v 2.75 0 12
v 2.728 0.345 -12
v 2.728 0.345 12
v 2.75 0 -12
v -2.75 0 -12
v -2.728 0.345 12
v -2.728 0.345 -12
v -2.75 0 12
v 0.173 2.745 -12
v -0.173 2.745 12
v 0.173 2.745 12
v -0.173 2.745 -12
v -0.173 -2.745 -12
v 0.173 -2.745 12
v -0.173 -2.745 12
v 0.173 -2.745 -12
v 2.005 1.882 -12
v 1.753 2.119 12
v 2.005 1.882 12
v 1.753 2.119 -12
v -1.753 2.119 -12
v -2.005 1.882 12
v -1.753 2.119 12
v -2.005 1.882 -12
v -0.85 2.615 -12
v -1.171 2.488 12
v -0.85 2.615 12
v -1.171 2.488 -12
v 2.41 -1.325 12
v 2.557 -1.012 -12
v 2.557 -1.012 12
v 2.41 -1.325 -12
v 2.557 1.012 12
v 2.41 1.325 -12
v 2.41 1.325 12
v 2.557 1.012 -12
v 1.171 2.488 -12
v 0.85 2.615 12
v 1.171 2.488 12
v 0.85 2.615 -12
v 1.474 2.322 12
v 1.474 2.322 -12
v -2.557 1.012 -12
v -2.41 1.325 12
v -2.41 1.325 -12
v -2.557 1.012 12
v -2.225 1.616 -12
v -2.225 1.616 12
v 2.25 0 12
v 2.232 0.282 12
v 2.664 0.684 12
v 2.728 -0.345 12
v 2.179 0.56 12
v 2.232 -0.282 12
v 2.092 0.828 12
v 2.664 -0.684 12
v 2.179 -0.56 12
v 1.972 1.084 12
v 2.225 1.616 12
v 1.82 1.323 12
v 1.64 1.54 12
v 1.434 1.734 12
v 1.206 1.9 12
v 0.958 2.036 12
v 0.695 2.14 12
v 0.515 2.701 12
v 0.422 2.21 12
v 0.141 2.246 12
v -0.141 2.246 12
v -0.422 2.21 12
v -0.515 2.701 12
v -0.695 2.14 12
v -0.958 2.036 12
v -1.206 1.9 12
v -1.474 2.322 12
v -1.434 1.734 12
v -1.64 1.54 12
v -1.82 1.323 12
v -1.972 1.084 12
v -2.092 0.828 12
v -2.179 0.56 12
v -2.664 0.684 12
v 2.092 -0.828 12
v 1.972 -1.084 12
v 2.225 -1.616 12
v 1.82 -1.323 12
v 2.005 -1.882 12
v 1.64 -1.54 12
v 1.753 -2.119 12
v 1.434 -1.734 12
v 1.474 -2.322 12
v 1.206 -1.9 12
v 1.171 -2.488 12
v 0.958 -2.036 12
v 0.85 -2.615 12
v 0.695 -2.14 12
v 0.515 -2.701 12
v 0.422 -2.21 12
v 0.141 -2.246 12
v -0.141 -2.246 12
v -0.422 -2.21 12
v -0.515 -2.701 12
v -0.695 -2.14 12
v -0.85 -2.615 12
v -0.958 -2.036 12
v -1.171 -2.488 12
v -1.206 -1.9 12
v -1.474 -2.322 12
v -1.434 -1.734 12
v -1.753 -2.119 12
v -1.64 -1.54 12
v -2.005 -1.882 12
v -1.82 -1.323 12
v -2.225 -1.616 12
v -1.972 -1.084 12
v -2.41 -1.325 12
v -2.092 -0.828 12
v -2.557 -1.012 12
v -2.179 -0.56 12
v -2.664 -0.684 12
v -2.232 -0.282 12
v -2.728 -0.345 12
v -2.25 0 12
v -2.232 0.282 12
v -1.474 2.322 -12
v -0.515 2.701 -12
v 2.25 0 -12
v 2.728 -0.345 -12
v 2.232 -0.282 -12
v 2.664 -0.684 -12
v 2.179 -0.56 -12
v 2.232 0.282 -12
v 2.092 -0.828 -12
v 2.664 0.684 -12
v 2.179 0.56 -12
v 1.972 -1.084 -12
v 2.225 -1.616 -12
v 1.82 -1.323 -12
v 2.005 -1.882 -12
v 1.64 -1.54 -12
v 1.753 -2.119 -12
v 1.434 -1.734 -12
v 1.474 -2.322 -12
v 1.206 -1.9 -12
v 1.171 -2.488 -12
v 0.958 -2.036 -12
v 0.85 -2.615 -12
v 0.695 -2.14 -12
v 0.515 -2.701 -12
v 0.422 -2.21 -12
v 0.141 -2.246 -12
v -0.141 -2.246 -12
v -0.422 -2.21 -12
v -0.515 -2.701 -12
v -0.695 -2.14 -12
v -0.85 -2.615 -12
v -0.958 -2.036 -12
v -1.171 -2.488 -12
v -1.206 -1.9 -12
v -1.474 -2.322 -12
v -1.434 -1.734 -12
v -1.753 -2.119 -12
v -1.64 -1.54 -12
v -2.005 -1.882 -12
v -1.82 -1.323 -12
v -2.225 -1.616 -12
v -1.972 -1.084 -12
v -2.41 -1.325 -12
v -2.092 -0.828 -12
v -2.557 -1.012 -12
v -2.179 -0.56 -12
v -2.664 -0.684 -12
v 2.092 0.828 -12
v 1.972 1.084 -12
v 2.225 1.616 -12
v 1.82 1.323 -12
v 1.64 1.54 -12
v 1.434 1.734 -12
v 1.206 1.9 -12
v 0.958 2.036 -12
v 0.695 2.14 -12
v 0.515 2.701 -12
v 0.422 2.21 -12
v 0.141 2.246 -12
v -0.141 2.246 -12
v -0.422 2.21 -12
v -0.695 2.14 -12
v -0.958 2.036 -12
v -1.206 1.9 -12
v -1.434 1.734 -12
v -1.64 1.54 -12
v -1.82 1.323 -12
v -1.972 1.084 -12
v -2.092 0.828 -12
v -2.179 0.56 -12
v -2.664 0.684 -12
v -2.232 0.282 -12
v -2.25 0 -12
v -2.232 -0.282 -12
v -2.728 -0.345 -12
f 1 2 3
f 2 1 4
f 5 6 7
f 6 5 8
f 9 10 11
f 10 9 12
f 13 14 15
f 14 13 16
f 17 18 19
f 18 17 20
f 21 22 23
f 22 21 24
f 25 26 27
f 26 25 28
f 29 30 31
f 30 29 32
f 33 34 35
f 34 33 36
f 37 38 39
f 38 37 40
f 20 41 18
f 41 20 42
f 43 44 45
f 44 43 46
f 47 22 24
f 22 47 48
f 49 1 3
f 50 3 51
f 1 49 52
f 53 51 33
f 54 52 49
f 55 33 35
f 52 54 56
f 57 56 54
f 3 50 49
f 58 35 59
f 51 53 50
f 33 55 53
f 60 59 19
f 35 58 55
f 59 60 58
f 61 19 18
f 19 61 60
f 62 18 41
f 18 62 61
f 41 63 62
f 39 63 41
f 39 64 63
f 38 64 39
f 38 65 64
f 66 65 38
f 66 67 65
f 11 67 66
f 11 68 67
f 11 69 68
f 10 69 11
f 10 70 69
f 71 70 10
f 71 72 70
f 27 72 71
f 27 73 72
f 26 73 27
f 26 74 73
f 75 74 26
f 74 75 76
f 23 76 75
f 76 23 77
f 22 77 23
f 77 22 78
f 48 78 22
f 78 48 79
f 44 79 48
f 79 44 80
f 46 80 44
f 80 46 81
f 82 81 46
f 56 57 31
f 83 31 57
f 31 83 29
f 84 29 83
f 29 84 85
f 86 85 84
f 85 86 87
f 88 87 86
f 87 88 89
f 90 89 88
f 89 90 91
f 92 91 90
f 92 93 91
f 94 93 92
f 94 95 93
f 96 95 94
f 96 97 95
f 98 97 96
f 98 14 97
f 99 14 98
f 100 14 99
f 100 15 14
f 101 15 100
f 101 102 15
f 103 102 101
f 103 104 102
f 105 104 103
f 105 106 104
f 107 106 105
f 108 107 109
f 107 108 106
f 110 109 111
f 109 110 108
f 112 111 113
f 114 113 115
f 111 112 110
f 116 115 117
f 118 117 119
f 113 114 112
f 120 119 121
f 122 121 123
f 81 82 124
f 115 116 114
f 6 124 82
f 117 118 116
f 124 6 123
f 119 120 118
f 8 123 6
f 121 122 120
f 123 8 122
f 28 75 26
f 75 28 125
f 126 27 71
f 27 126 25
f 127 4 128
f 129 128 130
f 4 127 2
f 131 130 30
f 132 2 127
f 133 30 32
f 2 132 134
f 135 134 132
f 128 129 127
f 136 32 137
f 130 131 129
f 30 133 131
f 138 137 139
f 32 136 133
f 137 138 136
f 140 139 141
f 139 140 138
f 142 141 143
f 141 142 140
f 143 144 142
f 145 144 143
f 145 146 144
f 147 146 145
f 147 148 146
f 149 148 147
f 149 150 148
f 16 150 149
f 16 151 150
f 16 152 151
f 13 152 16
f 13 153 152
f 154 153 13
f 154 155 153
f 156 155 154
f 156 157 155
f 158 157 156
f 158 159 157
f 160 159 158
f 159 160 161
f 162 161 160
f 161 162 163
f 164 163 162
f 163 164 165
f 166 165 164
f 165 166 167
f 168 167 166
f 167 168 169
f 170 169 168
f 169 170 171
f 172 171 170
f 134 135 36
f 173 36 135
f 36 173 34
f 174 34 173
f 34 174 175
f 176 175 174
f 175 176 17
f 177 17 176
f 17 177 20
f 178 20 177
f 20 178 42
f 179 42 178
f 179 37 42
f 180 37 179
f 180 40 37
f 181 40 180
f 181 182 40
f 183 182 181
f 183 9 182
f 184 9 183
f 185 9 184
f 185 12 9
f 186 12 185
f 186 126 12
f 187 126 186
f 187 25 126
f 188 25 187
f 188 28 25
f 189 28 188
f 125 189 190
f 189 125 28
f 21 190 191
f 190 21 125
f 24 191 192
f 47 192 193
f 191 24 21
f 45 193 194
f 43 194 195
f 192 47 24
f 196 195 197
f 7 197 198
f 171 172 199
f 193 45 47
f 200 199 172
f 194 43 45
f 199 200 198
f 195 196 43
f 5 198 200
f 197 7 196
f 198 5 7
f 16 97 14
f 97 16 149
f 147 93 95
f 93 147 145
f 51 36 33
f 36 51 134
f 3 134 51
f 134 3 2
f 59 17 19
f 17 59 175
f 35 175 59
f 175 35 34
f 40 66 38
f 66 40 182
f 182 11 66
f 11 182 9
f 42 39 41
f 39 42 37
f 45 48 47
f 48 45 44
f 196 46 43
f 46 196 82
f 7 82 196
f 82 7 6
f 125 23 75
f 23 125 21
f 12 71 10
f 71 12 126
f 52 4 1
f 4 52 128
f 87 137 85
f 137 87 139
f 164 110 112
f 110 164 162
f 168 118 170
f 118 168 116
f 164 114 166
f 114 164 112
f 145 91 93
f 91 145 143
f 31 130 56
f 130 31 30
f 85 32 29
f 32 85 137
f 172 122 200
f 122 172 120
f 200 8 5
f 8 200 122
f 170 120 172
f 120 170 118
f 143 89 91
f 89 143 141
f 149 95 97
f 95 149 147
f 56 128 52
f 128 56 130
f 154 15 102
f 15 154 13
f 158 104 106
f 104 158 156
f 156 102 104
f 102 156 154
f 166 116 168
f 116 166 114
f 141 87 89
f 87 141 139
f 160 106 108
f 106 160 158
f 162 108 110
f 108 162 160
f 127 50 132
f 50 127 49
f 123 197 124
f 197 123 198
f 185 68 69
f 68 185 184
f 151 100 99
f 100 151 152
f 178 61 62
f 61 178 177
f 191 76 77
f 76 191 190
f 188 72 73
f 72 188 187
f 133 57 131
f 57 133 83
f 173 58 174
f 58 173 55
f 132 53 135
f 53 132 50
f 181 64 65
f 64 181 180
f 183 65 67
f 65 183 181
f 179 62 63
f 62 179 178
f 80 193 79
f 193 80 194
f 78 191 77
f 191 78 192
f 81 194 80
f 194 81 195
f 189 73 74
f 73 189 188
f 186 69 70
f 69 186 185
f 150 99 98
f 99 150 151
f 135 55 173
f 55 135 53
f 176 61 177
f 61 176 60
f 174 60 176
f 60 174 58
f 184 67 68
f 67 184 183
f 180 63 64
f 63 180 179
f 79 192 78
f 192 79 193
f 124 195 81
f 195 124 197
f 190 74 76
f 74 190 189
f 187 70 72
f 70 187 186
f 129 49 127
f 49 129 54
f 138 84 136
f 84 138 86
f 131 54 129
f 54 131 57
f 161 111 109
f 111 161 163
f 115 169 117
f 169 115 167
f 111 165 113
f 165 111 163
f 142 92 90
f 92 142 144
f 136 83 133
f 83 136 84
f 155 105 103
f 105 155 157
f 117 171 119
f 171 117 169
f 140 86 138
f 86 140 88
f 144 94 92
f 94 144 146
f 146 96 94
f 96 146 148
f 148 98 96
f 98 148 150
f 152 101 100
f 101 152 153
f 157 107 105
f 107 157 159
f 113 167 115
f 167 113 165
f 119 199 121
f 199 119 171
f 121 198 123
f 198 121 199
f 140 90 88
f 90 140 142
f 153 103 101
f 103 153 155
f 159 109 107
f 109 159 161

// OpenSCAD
$fn = 50;


difference() {
	union() {
		translate(v = [0, 0, -12.0000000000]) {
			cylinder(h = 24, r = 2.7500000000);
		}
	}
	union() {
		translate(v = [0, 0, -100.0000000000]) {
			cylinder(h = 200, r = 2.2500000000);
		}
	}
}
